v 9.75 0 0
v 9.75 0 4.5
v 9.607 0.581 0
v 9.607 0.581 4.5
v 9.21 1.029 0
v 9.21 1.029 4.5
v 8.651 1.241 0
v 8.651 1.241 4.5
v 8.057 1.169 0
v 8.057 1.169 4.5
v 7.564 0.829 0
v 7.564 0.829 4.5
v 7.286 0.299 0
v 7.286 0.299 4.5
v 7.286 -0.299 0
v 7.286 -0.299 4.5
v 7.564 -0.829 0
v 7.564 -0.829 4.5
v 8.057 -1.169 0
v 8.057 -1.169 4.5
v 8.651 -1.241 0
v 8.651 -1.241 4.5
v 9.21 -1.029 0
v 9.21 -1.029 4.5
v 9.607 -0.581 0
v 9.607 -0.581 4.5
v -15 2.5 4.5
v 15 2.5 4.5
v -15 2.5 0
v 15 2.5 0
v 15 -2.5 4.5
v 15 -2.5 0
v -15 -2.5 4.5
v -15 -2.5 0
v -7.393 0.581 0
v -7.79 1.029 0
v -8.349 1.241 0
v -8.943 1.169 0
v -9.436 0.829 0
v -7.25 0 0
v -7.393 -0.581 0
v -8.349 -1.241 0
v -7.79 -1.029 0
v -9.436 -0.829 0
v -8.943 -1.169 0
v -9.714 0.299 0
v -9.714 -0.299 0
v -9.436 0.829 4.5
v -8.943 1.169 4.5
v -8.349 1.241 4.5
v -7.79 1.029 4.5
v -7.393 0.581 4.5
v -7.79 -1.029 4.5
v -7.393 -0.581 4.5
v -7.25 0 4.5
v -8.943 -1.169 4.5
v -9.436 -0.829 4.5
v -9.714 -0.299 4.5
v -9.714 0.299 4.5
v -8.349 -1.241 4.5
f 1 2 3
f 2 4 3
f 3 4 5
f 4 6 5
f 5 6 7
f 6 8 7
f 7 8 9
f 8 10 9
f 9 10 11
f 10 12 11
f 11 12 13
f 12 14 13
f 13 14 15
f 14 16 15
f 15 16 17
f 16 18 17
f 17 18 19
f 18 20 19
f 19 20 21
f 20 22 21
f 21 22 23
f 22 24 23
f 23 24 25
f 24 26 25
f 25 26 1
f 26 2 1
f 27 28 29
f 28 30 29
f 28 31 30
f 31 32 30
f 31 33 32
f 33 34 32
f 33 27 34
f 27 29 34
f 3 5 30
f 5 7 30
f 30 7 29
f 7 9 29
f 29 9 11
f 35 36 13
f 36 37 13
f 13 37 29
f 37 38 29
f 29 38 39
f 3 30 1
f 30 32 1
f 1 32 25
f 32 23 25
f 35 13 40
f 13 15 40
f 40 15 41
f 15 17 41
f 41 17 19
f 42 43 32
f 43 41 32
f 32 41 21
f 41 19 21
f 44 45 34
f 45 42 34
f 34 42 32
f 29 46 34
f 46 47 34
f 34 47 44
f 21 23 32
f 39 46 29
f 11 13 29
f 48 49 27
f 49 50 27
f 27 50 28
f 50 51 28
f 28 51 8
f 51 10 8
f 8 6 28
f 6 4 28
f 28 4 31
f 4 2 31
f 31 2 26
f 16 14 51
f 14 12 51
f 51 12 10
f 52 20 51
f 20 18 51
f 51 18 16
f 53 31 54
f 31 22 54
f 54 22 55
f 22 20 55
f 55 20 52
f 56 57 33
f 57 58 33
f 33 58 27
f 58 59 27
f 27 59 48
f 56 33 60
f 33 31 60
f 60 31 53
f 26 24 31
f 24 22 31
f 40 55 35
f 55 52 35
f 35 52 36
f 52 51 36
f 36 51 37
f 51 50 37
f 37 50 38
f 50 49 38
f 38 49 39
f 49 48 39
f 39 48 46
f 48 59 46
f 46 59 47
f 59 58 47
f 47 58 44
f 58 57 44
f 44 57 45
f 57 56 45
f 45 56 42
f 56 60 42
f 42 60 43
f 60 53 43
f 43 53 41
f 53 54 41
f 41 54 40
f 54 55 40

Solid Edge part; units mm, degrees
sketch "Sketch1" plane through (0, 0, 0) normal (0, 0, 1) x (1, 0, 0)
  line L0 (-15, -2.5) -> (15, -2.5)
  line L1 (15, -2.5) -> (15, 2.5)
  line L2 (15, 2.5) -> (-15, 2.5)
  line L3 (-15, 2.5) -> (-15, -2.5)
  dimension "D1" = 30
  dimension "D2" = 5
extrude "Protrusion1" add sketch "Sketch1" along normal blind 4.5
sketch "Sketch2" plane through (0, 0, 4.5) normal (0, 0, 1) x (1, 0, 0)
  circle A0 centre (-8.5, 0) radius 1.25
  circle A1 centre (8.5, 0) radius 1.25
  dimension "D1" = 2.5
  dimension "D2" = 8.5
  dimension "D3" = 8.5
extrude "Cutout1" cut sketch "Sketch2" against normal through all
properties material "ABS Plastic, medium impact"
